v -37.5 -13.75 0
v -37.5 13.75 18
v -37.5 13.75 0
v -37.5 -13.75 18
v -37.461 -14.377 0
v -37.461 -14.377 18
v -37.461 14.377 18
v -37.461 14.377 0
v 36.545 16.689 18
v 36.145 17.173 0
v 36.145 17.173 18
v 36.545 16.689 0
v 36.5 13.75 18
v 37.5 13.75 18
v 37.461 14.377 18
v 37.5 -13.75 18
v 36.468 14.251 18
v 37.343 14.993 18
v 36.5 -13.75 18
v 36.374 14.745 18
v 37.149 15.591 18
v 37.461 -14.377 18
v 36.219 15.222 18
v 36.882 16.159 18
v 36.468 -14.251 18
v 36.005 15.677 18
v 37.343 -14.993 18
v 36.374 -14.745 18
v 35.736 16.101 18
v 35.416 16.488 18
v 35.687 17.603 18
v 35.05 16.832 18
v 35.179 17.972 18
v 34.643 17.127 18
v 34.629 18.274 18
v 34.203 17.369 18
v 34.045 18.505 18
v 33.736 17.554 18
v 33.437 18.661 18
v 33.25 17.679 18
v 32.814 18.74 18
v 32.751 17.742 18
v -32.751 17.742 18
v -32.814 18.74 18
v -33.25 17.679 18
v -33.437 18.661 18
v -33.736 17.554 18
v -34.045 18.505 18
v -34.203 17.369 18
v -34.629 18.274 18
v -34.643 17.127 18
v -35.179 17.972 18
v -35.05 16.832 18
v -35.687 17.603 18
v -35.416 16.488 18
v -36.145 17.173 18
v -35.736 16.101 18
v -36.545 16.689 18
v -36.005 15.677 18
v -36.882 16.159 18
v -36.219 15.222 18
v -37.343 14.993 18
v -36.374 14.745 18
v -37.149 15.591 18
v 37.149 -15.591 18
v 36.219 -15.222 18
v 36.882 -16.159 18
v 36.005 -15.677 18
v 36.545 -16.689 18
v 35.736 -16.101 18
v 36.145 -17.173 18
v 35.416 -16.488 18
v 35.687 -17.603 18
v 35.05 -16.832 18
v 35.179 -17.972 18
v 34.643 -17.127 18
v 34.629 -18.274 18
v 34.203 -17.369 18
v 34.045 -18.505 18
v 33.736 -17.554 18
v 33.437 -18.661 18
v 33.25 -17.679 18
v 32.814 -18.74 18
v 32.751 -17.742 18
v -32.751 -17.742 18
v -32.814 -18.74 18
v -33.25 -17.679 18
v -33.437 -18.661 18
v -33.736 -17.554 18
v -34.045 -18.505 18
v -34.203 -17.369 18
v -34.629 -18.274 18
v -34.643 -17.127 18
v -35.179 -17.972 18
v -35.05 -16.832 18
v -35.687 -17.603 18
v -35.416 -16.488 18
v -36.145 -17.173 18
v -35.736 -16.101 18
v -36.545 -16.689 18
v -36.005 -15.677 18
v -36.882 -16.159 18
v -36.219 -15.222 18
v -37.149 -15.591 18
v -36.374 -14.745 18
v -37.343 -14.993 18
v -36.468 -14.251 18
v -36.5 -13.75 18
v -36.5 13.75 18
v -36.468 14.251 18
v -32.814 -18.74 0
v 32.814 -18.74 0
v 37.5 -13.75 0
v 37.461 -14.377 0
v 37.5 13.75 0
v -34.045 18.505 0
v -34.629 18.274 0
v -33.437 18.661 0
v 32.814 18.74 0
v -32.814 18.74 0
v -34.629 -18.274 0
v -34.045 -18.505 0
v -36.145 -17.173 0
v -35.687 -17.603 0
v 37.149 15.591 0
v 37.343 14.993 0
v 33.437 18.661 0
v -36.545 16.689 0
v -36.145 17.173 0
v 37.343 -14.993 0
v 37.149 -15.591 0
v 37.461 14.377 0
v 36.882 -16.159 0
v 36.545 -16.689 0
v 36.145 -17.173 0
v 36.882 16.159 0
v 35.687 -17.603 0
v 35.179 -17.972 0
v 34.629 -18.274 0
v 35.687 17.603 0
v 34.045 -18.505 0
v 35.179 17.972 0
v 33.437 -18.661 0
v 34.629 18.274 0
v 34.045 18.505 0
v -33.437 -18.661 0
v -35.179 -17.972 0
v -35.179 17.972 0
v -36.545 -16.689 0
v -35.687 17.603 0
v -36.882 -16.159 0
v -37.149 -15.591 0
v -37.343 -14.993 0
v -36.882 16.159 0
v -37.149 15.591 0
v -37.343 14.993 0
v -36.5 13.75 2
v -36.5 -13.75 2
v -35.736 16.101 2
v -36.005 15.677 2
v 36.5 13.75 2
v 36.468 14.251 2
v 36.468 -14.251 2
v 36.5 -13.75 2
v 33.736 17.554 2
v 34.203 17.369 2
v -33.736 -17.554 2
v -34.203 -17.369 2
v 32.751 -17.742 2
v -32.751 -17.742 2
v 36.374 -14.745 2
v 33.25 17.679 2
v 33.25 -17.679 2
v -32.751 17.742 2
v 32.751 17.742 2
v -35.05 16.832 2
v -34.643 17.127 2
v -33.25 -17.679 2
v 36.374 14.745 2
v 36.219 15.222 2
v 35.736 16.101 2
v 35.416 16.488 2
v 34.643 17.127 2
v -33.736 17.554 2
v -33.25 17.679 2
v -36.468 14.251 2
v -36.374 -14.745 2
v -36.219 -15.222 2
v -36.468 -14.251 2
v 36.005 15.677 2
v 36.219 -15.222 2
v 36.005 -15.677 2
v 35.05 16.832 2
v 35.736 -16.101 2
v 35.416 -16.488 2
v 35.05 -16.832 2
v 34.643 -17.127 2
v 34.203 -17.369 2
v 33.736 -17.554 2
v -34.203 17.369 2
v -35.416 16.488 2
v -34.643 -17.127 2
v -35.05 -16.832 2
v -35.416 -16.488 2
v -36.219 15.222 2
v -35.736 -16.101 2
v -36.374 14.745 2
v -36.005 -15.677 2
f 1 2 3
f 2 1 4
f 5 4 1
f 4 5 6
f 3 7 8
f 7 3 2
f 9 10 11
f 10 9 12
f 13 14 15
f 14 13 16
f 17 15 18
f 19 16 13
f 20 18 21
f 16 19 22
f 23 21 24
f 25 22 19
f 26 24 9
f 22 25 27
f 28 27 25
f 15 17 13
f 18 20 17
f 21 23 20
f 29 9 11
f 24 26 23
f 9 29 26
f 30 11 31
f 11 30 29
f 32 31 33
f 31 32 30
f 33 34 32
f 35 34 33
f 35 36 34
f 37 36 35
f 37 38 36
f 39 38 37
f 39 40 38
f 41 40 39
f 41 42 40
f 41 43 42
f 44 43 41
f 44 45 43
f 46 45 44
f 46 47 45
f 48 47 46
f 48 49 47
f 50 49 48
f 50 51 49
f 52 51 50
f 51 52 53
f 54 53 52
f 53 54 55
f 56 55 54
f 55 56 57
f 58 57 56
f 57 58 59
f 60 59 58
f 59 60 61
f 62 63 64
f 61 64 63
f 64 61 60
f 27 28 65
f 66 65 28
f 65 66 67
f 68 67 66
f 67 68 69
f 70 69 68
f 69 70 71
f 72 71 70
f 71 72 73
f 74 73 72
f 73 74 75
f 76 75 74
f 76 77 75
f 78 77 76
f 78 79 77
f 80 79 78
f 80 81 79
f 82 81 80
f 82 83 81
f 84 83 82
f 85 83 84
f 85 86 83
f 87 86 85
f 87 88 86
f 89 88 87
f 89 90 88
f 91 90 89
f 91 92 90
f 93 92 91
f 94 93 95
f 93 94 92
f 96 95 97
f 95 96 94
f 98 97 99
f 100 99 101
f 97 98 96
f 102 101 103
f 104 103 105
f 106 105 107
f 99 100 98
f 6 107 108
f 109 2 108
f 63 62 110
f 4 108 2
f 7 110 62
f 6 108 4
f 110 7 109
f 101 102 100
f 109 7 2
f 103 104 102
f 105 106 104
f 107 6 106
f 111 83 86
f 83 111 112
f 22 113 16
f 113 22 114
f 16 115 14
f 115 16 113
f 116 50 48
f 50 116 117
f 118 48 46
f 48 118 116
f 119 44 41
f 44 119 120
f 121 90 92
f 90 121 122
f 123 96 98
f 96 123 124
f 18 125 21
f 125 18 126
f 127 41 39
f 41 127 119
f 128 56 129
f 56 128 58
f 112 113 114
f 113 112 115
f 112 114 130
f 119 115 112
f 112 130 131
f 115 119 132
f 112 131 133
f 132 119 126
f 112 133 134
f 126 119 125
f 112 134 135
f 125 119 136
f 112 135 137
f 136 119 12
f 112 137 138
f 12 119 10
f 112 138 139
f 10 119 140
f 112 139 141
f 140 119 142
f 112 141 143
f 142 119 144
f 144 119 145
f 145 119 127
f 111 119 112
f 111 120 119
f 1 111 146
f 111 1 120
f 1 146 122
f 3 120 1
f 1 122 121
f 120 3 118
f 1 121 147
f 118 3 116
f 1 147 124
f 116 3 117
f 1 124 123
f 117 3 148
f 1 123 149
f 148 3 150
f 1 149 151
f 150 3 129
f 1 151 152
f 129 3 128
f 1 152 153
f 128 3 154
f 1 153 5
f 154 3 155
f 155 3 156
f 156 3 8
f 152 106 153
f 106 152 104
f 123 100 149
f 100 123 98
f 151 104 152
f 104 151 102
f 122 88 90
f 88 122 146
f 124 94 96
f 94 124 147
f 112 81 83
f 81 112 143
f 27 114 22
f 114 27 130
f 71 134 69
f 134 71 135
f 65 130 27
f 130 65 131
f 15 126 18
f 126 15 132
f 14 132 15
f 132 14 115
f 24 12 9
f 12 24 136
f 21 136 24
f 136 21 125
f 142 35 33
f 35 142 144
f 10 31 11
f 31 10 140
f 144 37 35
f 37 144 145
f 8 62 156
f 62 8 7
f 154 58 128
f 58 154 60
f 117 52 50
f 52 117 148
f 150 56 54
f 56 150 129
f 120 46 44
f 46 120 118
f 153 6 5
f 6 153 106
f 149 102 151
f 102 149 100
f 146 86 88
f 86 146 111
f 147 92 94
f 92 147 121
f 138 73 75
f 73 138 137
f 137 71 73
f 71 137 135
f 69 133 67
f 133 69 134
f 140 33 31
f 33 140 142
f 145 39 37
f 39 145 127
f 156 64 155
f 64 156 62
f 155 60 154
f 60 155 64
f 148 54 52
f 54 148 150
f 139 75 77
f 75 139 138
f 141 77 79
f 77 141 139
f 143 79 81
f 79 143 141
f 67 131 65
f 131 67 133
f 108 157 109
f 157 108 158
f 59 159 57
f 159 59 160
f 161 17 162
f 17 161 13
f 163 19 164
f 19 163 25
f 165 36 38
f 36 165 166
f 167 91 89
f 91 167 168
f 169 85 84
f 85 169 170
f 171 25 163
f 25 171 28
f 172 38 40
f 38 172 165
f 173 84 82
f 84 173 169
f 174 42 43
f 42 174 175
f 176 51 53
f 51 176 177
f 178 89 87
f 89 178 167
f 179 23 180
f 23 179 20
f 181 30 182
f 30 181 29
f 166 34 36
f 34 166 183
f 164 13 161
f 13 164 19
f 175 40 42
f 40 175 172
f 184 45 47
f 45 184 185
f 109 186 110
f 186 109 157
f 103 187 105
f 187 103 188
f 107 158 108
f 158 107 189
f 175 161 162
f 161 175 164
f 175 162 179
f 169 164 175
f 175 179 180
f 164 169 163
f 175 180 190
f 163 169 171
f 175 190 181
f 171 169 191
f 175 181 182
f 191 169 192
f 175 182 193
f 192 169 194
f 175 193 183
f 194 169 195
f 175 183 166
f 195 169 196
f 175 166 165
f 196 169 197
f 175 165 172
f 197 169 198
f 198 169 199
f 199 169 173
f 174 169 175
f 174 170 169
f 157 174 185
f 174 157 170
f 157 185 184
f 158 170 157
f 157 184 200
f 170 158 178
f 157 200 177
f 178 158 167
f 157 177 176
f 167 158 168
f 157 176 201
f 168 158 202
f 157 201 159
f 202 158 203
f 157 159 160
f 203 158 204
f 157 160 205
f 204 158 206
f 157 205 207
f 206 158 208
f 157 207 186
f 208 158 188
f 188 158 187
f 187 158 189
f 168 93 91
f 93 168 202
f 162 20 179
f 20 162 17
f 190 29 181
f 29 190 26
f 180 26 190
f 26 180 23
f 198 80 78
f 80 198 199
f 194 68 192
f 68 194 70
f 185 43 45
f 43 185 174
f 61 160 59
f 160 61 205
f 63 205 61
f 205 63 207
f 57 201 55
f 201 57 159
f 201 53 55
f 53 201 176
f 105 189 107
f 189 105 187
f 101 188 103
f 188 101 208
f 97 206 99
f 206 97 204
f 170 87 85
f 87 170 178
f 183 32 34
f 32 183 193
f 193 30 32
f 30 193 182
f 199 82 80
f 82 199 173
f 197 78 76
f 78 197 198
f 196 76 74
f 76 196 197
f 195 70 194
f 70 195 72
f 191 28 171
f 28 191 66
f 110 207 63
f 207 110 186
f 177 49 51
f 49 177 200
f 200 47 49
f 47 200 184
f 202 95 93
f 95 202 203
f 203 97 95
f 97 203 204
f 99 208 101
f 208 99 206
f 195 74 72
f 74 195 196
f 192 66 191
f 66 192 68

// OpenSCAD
$fn = 50;


difference() {
	union() {
		hull() {
			translate(v = [-32.5000000000, 13.7500000000, 0]) {
				cylinder(h = 18, r = 5);
			}
			translate(v = [32.5000000000, 13.7500000000, 0]) {
				cylinder(h = 18, r = 5);
			}
			translate(v = [-32.5000000000, -13.7500000000, 0]) {
				cylinder(h = 18, r = 5);
			}
			translate(v = [32.5000000000, -13.7500000000, 0]) {
				cylinder(h = 18, r = 5);
			}
		}
	}
	union() {
		translate(v = [0, 0, 2]) {
			hull() {
				translate(v = [-32.5000000000, 13.7500000000, 0]) {
					cylinder(h = 16, r = 4);
				}
				translate(v = [32.5000000000, 13.7500000000, 0]) {
					cylinder(h = 16, r = 4);
				}
				translate(v = [-32.5000000000, -13.7500000000, 0]) {
					cylinder(h = 16, r = 4);
				}
				translate(v = [32.5000000000, -13.7500000000, 0]) {
					cylinder(h = 16, r = 4);
				}
			}
		}
	}
}
